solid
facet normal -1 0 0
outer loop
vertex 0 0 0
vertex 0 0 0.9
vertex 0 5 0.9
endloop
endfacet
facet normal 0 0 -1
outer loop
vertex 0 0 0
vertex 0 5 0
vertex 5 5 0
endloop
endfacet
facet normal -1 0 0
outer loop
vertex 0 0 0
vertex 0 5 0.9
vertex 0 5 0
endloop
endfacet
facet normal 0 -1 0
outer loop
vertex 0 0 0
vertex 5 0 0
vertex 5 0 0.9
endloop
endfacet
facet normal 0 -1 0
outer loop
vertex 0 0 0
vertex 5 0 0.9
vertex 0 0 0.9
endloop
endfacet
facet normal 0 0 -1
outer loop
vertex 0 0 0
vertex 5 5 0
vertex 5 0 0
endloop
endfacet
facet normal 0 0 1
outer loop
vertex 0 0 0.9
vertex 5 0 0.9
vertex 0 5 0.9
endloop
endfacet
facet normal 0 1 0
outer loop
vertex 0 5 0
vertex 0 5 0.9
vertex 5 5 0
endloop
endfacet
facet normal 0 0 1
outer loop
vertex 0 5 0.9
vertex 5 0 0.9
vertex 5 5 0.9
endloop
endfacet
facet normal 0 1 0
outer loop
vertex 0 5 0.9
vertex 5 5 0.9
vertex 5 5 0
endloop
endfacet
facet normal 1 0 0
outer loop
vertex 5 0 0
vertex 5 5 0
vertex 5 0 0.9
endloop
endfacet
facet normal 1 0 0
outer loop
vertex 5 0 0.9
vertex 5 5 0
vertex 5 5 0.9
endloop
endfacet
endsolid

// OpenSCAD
/* Warning, this is a very basic generator with a lot of approximation 
input data : [VQFN, RVB, 5x5x0.9mm, 32, , A, C04-21393A]
generated by com.zoubworld.electronics.cad.model3d.Basic
Date : Sun Feb 15 10:50:49 CET 2026
*/

//body
color("black")
translate([0,0,0])
cube([5.0,5.0,0.9], center=false);
